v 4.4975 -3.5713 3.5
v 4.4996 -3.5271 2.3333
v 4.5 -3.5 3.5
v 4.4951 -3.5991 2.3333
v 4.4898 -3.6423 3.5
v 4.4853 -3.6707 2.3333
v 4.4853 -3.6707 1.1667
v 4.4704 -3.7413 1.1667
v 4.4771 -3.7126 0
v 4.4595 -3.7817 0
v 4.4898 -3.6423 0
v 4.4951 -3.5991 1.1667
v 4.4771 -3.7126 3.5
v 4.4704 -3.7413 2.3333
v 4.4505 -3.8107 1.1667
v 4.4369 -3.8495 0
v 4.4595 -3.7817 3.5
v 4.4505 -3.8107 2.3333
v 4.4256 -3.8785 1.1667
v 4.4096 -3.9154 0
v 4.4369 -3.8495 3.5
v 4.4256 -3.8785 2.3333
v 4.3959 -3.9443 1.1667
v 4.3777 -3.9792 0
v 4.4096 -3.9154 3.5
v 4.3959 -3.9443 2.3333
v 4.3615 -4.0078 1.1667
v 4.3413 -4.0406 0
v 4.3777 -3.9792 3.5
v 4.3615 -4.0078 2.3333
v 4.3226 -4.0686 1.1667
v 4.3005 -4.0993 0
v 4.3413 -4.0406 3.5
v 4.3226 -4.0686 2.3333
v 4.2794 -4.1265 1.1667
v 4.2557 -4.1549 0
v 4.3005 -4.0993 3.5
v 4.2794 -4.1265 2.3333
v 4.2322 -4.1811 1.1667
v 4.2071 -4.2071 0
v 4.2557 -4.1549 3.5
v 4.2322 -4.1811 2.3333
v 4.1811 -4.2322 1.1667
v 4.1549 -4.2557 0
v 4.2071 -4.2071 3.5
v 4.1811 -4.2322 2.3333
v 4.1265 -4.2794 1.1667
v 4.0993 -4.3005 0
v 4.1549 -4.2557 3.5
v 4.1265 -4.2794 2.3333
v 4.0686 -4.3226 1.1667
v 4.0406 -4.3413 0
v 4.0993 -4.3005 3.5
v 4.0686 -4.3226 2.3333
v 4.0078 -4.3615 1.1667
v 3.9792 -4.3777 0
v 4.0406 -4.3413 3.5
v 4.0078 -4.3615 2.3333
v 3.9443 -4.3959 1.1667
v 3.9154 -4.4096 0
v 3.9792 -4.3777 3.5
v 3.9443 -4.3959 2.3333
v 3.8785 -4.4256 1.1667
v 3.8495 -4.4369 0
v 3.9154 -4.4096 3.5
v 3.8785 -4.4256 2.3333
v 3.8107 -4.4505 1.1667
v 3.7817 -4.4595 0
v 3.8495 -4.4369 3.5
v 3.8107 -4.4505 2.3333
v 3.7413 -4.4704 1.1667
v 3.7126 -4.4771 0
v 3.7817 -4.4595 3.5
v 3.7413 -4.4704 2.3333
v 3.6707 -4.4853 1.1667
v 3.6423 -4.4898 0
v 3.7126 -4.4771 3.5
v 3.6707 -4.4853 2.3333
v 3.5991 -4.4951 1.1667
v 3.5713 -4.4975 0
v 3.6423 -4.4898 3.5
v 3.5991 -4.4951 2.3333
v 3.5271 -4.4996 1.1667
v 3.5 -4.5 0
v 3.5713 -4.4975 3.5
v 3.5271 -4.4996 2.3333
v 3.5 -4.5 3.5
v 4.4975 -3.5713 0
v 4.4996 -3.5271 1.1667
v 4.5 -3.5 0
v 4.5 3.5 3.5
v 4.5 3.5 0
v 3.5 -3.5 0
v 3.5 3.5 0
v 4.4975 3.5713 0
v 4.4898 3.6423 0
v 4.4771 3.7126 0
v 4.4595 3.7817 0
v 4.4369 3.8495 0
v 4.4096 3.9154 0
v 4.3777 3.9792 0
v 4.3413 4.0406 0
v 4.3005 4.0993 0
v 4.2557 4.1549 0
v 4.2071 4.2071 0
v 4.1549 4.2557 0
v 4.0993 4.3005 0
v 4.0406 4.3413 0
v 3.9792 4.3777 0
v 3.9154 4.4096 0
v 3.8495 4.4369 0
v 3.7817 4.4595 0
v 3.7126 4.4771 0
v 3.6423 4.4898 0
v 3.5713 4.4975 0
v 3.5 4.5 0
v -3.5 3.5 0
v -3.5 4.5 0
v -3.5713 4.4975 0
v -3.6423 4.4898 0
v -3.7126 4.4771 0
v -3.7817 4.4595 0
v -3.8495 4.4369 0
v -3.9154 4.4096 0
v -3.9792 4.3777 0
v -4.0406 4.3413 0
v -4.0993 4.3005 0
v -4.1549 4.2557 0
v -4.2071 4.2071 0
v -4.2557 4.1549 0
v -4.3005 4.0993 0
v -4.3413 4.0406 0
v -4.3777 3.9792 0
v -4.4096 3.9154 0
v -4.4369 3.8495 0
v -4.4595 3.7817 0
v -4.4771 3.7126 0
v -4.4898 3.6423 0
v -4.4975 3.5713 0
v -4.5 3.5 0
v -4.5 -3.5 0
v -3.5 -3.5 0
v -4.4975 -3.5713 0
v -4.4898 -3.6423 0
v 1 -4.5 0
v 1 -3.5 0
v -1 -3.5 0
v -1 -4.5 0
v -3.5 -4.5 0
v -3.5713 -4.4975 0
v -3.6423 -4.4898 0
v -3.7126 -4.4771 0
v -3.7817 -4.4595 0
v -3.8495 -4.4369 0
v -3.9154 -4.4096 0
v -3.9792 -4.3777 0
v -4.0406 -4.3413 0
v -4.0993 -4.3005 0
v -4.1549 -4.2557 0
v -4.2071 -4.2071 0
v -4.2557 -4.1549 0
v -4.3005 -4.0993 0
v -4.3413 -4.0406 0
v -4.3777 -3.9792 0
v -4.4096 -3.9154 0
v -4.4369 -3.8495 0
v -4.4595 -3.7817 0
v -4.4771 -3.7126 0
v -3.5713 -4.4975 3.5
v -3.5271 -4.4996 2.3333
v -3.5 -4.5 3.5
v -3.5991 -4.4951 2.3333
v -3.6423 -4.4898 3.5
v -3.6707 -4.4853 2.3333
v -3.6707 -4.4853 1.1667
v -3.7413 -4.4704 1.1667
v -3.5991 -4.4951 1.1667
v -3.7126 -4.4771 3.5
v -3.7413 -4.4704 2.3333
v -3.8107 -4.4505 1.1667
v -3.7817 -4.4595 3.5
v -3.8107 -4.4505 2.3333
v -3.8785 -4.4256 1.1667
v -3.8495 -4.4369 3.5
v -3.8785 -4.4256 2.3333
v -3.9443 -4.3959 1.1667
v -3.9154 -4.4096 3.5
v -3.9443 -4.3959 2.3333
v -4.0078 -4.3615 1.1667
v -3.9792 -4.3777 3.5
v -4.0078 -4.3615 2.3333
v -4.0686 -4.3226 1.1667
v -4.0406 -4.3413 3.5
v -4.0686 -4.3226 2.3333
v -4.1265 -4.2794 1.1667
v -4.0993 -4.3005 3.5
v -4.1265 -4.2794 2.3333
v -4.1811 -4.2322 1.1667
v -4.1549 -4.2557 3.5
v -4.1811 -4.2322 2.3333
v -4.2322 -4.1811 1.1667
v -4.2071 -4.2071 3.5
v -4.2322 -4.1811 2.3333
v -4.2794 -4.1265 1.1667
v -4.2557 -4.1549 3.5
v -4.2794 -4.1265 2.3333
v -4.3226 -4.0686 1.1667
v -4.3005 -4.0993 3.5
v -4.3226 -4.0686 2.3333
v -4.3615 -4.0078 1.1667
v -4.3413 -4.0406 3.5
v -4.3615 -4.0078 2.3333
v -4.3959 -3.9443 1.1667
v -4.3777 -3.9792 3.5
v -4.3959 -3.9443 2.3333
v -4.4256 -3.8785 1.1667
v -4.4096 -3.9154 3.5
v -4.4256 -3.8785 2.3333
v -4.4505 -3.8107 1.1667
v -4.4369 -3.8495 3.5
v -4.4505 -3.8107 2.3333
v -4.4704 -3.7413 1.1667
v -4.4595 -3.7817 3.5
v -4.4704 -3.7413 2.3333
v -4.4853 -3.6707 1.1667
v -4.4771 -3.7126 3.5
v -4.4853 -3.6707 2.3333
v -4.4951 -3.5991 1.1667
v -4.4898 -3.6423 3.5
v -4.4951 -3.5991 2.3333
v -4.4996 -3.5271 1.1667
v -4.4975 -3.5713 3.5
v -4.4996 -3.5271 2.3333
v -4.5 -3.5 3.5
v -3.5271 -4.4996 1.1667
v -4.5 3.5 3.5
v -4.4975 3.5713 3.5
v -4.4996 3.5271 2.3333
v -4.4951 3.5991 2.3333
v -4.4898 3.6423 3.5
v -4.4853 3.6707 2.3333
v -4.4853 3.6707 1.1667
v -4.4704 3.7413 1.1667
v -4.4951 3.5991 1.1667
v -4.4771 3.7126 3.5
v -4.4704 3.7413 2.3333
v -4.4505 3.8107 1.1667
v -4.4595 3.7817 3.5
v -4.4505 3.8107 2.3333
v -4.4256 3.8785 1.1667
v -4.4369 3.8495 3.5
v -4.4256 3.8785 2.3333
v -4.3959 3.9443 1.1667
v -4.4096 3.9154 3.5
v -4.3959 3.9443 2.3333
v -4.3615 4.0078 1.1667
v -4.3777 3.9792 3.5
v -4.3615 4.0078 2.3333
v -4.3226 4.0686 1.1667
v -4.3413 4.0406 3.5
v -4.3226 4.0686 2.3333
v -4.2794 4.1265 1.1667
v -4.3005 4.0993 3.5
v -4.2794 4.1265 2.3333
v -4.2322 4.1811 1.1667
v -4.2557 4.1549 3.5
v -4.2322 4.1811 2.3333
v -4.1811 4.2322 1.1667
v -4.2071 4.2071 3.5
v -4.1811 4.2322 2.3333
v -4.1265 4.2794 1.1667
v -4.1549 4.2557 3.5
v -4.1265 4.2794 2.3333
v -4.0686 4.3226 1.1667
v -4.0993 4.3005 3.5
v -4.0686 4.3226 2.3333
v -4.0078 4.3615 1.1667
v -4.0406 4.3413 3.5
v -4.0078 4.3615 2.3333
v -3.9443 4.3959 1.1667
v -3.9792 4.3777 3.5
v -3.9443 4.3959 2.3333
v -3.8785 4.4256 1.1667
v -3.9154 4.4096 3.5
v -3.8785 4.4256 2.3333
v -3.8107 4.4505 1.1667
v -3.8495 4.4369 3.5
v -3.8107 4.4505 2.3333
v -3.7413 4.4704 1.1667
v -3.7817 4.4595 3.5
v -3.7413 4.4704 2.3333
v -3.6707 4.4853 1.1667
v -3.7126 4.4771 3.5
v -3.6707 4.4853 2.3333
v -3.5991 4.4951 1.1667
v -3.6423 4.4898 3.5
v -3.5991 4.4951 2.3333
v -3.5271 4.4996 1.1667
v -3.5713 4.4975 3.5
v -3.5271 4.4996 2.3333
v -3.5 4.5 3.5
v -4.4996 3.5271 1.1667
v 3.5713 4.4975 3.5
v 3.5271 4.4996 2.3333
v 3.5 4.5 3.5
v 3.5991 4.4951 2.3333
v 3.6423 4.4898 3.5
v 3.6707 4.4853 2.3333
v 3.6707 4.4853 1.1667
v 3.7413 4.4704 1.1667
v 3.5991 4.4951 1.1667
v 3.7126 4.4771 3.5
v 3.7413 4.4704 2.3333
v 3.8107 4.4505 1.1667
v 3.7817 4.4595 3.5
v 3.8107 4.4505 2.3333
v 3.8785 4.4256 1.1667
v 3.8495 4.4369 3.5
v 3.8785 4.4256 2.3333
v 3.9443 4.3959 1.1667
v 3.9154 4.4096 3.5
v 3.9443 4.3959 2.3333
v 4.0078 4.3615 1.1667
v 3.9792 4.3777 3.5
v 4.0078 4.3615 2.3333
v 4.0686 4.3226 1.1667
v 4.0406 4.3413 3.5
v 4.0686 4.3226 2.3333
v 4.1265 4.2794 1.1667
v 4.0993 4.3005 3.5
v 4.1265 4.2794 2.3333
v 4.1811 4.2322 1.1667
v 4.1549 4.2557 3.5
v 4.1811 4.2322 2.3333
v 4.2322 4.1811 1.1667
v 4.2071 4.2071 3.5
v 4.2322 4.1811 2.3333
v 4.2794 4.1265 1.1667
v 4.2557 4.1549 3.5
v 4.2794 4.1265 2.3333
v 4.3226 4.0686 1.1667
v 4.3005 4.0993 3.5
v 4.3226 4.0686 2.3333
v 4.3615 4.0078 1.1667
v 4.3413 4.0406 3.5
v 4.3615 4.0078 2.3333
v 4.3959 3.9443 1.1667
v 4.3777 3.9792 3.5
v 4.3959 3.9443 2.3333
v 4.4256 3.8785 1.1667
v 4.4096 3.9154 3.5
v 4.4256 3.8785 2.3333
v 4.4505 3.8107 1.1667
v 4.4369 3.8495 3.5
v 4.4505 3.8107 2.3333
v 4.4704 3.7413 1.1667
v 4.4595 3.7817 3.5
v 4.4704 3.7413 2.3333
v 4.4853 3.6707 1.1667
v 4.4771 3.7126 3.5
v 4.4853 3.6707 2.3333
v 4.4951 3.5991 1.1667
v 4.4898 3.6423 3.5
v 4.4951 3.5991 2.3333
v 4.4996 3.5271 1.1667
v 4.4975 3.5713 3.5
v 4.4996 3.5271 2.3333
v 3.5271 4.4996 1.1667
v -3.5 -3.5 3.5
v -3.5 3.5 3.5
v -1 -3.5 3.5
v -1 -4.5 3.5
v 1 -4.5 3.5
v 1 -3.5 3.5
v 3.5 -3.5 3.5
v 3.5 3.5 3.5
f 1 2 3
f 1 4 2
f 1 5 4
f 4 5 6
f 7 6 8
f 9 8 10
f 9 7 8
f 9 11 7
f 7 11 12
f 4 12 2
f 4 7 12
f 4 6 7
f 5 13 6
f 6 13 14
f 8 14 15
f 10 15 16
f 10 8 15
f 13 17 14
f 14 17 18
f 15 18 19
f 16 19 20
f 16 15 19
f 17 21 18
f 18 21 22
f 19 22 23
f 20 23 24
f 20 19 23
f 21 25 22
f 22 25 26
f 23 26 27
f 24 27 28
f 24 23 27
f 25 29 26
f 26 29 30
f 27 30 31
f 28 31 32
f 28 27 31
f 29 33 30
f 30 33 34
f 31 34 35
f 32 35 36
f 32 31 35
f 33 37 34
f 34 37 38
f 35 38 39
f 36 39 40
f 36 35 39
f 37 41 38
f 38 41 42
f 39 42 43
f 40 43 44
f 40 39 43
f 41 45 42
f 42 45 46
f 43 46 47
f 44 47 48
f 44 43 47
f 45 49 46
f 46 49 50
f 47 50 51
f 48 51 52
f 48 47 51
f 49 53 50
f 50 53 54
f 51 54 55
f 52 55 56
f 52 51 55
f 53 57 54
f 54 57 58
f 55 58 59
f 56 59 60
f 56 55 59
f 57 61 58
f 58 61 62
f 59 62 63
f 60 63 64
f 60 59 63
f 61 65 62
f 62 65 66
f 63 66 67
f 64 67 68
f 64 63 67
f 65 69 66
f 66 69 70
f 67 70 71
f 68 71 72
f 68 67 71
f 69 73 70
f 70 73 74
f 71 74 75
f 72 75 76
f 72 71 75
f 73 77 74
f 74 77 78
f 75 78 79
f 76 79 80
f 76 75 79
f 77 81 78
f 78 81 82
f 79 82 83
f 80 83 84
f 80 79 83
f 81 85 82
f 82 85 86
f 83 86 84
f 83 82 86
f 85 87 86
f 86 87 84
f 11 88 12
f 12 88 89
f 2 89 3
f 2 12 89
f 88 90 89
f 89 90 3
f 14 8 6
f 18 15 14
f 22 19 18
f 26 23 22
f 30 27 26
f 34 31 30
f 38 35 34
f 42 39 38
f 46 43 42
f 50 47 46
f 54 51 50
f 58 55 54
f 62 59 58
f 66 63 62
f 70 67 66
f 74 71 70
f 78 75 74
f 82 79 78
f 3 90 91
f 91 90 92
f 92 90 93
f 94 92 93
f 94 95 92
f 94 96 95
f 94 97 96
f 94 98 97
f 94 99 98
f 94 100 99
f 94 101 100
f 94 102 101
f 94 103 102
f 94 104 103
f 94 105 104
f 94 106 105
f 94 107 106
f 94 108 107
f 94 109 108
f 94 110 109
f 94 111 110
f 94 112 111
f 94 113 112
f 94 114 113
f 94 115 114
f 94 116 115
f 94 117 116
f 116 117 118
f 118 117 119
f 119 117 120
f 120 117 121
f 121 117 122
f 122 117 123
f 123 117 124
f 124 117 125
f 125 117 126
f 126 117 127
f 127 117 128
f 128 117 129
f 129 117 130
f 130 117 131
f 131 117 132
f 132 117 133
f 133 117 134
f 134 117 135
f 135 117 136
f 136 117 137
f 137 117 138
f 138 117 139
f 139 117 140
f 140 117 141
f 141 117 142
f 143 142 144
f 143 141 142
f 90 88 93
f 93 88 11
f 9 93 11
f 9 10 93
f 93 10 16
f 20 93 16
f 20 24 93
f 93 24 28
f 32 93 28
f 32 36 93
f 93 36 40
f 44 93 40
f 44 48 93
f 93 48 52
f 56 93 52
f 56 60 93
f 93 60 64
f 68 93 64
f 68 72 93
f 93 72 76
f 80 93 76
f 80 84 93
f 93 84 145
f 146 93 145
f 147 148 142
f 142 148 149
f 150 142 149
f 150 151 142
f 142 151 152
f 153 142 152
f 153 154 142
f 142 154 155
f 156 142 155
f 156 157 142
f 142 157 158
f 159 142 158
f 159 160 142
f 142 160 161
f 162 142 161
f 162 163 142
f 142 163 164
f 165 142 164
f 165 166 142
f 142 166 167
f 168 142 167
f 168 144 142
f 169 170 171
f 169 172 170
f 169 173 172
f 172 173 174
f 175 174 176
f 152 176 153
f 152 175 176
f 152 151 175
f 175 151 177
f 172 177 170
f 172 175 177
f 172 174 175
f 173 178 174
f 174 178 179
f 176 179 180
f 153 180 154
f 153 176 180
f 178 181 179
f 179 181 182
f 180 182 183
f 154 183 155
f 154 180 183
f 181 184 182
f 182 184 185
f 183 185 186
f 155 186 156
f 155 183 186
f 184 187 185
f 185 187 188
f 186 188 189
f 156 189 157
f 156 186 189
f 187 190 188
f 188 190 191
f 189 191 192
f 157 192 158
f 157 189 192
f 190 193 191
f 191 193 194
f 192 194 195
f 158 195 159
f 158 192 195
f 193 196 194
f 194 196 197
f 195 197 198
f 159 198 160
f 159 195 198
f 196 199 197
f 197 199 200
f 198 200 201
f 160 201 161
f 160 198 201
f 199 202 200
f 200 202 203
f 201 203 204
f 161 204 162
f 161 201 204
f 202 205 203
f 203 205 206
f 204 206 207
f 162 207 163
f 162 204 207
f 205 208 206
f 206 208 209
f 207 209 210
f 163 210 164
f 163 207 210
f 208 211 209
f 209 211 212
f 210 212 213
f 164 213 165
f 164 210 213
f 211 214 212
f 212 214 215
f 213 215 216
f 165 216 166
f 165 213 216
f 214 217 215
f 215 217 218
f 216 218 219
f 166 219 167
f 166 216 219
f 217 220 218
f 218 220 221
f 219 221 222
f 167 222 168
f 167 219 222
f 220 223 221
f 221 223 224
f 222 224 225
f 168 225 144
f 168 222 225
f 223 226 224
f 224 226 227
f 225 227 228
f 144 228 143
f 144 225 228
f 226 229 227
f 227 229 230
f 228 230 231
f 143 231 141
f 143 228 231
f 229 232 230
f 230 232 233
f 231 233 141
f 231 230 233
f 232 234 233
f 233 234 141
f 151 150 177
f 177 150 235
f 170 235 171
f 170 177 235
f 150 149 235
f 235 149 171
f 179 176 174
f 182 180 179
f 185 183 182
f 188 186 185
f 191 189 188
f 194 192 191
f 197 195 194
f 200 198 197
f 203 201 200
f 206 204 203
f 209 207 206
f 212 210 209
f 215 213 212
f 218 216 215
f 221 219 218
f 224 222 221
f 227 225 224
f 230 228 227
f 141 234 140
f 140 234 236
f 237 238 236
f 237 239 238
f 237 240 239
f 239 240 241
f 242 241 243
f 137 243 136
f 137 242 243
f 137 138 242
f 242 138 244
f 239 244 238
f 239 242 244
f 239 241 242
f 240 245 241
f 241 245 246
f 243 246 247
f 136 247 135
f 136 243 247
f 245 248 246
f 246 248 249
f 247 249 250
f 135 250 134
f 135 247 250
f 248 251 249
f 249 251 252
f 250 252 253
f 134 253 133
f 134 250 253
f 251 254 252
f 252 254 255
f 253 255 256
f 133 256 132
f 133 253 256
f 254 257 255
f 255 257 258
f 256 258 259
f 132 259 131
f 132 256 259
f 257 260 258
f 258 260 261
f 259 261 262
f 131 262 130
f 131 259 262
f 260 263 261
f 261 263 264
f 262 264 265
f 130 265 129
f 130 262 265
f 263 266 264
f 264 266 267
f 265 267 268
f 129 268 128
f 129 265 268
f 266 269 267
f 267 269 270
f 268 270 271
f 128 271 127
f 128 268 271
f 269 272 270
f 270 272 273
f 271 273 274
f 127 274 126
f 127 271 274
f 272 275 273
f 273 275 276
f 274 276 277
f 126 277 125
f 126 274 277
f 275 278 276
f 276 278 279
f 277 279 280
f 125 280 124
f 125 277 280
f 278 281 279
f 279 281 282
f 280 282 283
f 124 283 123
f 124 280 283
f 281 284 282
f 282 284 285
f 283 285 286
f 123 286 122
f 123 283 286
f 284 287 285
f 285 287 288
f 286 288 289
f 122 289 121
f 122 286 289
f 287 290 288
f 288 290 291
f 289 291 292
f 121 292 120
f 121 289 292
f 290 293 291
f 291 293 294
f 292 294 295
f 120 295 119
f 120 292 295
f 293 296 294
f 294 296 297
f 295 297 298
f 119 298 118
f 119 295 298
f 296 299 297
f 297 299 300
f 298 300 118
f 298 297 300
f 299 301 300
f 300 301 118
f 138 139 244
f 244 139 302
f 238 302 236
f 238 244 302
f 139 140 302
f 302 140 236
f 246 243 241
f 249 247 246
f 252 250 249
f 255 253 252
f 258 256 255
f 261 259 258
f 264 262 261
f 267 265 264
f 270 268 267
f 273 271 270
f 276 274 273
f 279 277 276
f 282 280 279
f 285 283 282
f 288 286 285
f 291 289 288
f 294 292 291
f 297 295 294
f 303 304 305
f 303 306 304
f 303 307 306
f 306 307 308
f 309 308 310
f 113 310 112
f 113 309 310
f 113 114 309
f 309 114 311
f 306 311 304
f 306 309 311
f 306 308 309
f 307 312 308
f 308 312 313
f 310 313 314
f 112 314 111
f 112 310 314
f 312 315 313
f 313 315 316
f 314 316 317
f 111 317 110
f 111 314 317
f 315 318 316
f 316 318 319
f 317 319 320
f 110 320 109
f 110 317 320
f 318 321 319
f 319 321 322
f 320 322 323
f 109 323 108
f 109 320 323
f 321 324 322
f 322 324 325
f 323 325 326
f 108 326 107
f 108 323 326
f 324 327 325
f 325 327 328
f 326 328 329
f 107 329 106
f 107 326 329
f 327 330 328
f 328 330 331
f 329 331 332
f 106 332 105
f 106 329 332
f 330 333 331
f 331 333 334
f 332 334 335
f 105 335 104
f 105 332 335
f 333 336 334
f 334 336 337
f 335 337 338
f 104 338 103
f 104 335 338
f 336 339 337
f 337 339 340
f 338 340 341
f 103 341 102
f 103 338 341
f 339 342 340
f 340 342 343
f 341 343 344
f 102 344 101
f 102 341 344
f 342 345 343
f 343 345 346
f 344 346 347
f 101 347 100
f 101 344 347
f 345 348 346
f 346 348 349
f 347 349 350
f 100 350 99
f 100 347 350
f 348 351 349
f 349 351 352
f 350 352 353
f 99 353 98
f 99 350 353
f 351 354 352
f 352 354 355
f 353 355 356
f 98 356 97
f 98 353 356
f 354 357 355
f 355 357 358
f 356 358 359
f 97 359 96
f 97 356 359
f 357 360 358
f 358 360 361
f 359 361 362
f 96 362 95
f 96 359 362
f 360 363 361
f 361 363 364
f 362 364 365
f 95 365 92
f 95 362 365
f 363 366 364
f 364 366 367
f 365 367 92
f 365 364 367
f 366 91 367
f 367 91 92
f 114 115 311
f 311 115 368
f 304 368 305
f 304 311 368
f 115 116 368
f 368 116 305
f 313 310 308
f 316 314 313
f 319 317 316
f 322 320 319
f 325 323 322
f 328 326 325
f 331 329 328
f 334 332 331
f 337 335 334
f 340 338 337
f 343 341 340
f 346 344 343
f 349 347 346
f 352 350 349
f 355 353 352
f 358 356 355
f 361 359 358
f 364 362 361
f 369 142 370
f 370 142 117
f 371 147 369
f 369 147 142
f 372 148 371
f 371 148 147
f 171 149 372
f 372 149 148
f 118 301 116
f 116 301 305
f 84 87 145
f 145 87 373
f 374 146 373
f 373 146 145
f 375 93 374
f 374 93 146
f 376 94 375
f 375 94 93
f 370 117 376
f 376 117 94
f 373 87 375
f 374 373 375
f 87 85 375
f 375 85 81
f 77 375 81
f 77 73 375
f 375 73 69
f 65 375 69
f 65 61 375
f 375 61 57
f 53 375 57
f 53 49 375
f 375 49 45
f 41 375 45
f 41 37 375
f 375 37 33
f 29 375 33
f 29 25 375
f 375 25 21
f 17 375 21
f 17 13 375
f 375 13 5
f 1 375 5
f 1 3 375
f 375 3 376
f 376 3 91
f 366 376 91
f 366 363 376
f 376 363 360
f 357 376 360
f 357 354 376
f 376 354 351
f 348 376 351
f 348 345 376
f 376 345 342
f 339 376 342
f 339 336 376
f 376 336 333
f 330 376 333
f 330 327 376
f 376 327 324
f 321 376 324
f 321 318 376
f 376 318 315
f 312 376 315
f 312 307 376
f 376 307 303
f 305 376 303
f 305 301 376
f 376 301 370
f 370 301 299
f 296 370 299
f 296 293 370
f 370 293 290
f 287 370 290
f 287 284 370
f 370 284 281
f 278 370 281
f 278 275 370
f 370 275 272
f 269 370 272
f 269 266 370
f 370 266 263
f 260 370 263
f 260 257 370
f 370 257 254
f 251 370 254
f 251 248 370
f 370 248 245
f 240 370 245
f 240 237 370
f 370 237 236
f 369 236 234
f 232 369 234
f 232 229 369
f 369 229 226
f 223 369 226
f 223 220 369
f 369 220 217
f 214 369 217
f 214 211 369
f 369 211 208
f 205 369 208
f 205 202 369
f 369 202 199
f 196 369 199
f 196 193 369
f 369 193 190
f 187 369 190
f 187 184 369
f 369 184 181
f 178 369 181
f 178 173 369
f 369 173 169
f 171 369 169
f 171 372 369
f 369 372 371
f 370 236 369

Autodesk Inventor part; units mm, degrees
ref_plane "YZ Plane" through (0, 0, 0) normal (1, 0, 0) x (0, 1, 0)
ref_plane "XZ Plane" through (0, 0, 0) normal (0, 1, 0) x (-1, 0, 0)
ref_plane "XY Plane" through (0, 0, 0) normal (0, 0, 1) x (1, 0, 0)
sketch "Sketch1" plane through (0, 0, 0) normal (0, 0, 1) x (1, 0, 0)
  line L0 (-3.5, 3.5) -> (3.5, 3.5)
  line L1 (3.5, 3.5) -> (3.5, -3.5)
  line L2 (3.5, -3.5) -> (-3.5, -3.5)
  line L3 (-3.5, -3.5) -> (-3.5, 3.5)
  line L4 (-4.5, 4.5) -> (4.5, 4.5)
  line L5 (4.5, 4.5) -> (4.5, -4.5)
  line L6 (4.5, -4.5) -> (-4.5, -4.5)
  line L7 (-4.5, -4.5) -> (-4.5, 4.5)
  line L8 (-1, -3.5) -> (-1, -4.5)
  line L9 (1, -3.5) -> (1, -4.5)
  point P0 (0, 0)
  point P1 (0, 3.5)
  point P2 (-3.5, 0)
  point P3 (-4.5, 0)
  point P4 (0, 4.5)
  dimension "d0" = 1
  dimension "d1" = 1
  dimension "d2" = 7
  dimension "d3" = 7
  dimension "d4" = 2
  dimension "d5" = 1
extrude "Extrusion1" add sketch "Sketch1" along normal blind 3.5 contours L3 L2 L8 L6 L7 L4 L5 L9 L1 L0
fillet "Fillet1" radius 1 4 edges at (4.5, 4.5, 1.75) (-4.5, 4.5, 1.75) (-4.5, -4.5, 1.75) (4.5, -4.5, 1.75)
equation "\"d1\" = d0"
equation "\"d5\" = 0.5 * d4"
properties part number "cable_clip_rev1"
